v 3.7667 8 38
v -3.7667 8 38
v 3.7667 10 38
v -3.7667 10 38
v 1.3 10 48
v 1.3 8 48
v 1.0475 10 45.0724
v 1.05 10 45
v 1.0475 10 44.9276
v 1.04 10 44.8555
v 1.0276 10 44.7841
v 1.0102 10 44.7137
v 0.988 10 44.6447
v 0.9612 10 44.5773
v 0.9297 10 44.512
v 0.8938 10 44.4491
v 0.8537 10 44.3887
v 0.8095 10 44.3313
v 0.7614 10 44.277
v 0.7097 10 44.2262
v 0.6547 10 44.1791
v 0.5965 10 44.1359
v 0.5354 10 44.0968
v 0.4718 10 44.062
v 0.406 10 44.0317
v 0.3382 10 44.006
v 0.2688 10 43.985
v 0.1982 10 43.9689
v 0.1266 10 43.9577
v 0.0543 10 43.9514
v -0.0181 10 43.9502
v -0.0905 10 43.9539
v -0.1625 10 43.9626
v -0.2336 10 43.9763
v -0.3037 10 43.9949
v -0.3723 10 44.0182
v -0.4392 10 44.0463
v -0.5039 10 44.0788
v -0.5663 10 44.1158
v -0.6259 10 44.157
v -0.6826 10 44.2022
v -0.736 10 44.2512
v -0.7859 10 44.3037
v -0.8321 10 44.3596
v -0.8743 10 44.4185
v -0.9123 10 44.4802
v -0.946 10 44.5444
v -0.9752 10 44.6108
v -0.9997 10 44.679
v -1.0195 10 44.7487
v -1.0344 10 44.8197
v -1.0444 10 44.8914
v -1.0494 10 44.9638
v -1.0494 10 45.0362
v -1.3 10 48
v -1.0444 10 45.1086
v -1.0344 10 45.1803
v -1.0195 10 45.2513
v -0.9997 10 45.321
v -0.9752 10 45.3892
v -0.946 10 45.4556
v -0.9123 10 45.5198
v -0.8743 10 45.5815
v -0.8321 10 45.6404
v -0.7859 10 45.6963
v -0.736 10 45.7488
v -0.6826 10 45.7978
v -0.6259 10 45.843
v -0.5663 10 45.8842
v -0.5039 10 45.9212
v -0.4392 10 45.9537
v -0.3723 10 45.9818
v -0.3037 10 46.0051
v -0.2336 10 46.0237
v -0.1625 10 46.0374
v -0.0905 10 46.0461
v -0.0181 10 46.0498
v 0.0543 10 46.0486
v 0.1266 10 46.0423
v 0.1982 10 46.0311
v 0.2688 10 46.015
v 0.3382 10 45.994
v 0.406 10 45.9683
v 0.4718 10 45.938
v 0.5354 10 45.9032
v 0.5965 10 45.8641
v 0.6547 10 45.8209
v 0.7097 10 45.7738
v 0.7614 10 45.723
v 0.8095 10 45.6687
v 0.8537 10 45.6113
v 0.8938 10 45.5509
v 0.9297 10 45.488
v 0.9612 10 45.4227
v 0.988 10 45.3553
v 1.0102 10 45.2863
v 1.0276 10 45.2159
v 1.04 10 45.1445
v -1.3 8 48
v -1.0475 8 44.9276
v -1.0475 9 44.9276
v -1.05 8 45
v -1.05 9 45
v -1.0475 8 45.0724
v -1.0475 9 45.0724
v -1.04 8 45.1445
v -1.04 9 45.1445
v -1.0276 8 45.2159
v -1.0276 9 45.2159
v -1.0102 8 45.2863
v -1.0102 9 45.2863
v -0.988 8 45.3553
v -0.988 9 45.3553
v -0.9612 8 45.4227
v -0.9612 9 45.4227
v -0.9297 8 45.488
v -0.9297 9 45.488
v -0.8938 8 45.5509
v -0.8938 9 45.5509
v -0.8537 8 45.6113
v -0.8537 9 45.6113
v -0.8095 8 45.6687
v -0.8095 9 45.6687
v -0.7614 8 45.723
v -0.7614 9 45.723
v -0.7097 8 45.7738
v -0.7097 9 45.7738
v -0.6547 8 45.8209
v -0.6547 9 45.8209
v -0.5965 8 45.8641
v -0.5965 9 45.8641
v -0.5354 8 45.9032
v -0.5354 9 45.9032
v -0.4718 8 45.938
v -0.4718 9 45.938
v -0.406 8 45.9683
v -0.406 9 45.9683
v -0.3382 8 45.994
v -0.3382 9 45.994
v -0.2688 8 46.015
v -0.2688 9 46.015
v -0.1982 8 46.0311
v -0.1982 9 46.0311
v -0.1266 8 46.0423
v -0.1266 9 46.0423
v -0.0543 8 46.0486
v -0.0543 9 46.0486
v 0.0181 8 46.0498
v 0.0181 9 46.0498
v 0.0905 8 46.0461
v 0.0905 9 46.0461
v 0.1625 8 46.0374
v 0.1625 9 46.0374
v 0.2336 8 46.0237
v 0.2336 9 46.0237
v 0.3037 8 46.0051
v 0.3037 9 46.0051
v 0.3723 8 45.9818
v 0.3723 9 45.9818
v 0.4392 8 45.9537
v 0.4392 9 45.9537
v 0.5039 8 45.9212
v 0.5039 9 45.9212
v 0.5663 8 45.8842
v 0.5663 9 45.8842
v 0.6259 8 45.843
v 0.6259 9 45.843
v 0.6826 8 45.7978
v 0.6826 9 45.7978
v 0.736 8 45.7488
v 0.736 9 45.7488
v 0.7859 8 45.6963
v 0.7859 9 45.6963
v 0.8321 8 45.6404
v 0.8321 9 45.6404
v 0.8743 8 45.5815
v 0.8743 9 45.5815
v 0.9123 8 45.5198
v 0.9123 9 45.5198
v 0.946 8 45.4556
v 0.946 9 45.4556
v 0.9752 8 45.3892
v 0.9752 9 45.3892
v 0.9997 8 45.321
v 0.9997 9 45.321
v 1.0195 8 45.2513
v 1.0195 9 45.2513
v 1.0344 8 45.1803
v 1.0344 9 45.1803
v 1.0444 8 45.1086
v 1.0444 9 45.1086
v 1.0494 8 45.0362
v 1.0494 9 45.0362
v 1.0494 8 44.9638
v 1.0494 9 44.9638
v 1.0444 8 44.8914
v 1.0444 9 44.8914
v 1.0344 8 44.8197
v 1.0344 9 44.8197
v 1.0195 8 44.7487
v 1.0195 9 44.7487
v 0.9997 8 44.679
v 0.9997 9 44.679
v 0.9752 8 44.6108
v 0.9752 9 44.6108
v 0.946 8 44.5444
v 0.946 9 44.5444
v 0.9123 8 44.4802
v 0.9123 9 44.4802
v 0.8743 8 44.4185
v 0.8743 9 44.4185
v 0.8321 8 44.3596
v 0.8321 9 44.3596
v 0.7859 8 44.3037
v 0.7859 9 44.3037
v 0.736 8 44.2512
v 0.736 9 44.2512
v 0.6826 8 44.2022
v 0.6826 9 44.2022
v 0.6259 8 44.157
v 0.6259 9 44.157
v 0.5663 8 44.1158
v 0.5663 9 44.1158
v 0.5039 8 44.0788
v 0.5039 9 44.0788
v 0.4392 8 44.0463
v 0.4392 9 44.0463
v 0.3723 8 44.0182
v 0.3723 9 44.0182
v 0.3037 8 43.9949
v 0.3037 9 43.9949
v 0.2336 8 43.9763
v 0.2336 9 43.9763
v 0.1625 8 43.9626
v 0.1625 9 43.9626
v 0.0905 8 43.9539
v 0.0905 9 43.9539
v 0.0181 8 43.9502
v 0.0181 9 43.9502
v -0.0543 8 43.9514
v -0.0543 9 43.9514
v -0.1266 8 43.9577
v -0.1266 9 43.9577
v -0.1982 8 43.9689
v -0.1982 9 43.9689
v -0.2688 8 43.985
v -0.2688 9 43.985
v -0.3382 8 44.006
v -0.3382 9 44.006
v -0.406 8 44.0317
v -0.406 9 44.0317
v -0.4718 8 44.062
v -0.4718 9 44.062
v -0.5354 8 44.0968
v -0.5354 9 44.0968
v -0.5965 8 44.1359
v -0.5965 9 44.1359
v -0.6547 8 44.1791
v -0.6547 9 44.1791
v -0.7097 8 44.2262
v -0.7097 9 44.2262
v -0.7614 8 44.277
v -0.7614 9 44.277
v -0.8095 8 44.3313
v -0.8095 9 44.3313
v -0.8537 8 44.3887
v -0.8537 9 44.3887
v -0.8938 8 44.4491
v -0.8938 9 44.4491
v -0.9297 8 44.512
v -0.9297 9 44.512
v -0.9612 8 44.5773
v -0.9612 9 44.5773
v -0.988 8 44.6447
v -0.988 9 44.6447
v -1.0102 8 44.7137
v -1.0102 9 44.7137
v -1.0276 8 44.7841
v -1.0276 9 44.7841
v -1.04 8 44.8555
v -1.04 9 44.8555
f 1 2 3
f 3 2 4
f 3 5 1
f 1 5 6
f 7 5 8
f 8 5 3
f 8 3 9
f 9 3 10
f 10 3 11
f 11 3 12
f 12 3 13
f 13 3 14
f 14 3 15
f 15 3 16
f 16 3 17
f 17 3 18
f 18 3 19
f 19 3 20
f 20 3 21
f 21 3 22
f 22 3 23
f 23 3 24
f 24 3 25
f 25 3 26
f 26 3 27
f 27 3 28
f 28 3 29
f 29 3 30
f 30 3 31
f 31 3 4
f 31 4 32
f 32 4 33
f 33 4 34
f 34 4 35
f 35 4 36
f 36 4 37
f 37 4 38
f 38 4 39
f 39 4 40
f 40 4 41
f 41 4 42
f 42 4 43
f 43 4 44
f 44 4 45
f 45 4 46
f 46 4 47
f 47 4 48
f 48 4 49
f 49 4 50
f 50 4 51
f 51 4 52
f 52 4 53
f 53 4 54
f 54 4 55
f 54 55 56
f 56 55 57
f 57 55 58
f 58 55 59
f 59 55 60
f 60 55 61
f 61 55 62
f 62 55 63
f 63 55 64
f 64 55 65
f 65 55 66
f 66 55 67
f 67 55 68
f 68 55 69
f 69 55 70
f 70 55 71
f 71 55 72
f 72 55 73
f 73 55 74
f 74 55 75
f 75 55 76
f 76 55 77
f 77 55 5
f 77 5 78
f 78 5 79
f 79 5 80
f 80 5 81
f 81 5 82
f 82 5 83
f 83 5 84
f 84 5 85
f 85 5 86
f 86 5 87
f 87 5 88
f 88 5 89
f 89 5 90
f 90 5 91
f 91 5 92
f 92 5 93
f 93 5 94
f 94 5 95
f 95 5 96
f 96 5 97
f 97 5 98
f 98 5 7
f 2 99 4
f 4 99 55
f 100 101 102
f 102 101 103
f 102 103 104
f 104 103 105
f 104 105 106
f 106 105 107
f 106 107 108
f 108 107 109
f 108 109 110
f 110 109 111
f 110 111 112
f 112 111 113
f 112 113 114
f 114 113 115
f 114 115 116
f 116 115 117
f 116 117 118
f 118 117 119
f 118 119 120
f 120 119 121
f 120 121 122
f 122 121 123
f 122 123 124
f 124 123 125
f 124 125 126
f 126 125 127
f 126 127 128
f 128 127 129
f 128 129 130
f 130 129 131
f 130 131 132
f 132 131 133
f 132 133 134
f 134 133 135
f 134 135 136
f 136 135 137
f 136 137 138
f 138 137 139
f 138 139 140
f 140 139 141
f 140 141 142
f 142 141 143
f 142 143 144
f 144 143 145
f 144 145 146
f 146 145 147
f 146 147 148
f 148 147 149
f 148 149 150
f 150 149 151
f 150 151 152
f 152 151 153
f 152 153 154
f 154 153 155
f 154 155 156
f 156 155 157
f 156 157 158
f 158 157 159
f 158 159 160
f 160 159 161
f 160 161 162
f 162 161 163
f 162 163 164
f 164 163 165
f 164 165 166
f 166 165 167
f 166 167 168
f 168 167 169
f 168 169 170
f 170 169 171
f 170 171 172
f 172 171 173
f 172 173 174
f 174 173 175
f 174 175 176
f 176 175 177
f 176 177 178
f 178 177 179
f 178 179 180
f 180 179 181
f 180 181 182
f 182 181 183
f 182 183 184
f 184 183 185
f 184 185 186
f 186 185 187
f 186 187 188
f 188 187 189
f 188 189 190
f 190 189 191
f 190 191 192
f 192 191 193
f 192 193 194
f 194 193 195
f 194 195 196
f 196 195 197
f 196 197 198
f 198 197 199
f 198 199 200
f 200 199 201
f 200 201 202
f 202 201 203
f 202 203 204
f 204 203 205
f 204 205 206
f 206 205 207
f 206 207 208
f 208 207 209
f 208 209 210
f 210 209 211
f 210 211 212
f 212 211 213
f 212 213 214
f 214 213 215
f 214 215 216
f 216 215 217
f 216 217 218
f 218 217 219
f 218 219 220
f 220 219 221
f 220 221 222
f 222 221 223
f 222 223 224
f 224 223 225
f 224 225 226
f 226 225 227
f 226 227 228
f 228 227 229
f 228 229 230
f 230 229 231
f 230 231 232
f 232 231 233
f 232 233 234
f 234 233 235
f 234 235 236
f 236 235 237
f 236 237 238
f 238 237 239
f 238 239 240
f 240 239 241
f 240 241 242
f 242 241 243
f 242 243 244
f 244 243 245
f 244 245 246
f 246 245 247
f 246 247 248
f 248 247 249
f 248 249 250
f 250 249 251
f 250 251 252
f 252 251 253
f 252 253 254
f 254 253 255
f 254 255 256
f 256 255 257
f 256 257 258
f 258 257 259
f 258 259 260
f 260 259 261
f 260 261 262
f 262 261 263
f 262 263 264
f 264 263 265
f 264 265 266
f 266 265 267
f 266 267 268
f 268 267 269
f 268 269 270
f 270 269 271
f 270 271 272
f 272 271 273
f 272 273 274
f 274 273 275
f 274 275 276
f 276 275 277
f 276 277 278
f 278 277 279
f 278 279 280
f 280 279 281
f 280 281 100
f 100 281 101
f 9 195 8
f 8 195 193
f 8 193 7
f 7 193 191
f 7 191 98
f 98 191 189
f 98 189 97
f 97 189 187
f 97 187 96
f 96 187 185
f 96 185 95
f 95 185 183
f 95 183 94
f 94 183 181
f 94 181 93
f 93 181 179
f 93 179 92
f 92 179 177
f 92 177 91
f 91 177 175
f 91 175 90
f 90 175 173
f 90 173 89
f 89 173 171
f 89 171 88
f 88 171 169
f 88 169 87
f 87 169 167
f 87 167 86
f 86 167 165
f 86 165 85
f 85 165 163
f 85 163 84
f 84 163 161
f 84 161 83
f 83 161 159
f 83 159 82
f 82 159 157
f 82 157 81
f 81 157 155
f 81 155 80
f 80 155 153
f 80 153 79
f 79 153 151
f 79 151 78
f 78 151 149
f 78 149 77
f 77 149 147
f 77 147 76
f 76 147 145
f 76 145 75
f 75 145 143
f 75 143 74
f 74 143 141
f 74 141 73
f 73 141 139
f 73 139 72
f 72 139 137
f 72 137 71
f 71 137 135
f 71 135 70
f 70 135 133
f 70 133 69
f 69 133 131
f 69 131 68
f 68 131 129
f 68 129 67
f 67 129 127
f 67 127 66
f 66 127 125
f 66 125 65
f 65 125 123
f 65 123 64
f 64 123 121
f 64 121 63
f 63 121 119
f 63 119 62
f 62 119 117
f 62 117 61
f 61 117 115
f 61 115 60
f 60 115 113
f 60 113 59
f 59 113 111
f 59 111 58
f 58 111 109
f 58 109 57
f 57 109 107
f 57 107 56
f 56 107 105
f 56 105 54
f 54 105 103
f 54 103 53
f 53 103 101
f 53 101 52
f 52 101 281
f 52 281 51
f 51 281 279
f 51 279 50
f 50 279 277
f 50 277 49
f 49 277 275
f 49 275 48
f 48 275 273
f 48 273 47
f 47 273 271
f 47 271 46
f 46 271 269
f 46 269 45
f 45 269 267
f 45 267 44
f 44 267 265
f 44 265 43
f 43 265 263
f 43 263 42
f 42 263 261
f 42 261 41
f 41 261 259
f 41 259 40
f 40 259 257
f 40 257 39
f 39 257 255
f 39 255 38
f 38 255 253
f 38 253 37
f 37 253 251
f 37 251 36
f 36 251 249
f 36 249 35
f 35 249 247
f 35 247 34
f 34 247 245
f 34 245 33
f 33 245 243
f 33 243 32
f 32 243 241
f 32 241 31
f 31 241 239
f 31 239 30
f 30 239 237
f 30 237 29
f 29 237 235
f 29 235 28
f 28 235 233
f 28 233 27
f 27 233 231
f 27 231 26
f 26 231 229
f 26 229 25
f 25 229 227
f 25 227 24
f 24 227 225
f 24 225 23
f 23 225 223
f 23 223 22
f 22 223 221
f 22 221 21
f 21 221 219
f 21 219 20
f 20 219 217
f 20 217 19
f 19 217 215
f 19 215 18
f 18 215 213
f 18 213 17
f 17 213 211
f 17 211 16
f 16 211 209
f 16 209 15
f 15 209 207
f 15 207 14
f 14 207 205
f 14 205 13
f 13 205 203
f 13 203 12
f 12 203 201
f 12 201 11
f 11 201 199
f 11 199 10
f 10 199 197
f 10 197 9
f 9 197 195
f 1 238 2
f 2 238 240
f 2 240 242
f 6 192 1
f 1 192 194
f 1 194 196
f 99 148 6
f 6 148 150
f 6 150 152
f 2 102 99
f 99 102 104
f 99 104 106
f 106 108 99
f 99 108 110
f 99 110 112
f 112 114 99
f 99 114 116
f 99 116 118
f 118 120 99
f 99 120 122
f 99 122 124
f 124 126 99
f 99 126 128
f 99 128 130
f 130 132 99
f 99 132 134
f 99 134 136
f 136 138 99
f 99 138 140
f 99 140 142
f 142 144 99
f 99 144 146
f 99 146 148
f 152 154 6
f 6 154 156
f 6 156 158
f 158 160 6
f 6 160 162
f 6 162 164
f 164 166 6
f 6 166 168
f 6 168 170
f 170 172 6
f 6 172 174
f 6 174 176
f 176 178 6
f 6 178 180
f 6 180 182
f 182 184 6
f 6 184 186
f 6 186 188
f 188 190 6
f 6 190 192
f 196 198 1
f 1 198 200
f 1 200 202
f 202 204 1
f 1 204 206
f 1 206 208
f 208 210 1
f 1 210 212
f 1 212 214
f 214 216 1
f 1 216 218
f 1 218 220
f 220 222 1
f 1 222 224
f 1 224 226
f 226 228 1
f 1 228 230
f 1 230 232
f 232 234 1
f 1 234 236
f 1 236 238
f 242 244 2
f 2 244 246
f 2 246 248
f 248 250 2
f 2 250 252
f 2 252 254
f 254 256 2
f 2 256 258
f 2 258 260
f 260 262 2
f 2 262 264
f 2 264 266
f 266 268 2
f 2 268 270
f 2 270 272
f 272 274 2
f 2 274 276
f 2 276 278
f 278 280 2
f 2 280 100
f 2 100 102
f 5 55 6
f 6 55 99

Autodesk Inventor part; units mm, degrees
ref_plane "YZ Plane" through (0, 0, 0) normal (1, 0, 0) x (0, 1, 0)
ref_plane "XZ Plane" through (0, 0, 0) normal (0, 1, 0) x (-1, 0, 0)
ref_plane "XY Plane" through (0, 0, 0) normal (0, 0, 1) x (1, 0, 0)
sketch "Sketch1" plane through (0, 0, 0) normal (0, 1, 0) x (-1, 0, 0)
  circle A0 centre (0, 0) radius 1.05
  line L0 (5, 20) -> (-5, 20)
  line L1 (-5, 20) -> (-5, -5)
  line L2 (-5, -5) -> (5, -5)
  line L3 (5, -5) -> (5, 20)
  circle A1 centre (0, 15) radius 1.05
  dimension "d0" = 2.1
  dimension "d1" = 5
  dimension "d2" = 10
  dimension "d4" = 5
  dimension "d16" = 2.1
  dimension "d17" = 15
  dimension "d18" = 5
extrude "Extrusion1" add sketch "Sketch1" along normal blind 10
sketch "Sketch2" plane through (5, 0, 20) normal (1, 0, 0) x (0, 0, -1)
  line L0 (0, 10) -> (25, 10) projected
  line L1 (15, 10) -> (17.5478, 3)
  line L2 (17.5478, 3) -> (25, 3)
  line L3 (18.95, 10) -> (18.95, 0) projected
  line L4 (25, 3) -> (25, 10)
  line L5 (25, 10) -> (15, 10)
  line L6 (25, 0) -> (25, 10) projected
  line L7 (0, 0) -> (25, 0) projected
  point P0 (20, 0)
  dimension "d8" = 3
  dimension "d9" = 110
  dimension "d10" = 10
extrude "Extrusion2" cut sketch "Sketch2" against normal blind 10 contours L0 L3 L2 L1 | L0 L4 L2 L3
sketch "Sketch3" plane through (0, 10, 0) normal (0, 1, 0) x (1, 0, 0)
  circle A0 centre (0, 0) radius 2
  dimension "d13" = 4
extrude "Extrusion3" cut sketch "Sketch3" against normal up to surface (7 mm away)
sketch "Sketch4" plane through (0, 10, 0) normal (0, 1, 0) x (1, 0, 0)
  circle A0 centre (0, -15) radius 1.05 projected
  circle A1 centre (0, -15) radius 2.25
  point P0 (0, 0)
  dimension "d19" = 4.5
extrude "Extrusion4" cut sketch "Sketch4" against normal up to surface (7 mm away)
chamfer "Chamfer1" distance 1 angle 45 1 edges at (1.05, 3, 0)
sketch "Sketch5" plane through (5, 0, -5) normal (0, 0, -1) x (-1, 0, 0)
  line L0 (5, 0) -> (5, 5.666) construction
  circle A0 centre (5, 5.666) radius 2.1
  line L1 (10, 3) -> (0, 3) projected
  dimension "d25" = 4.2
  dimension "d26" = 2.666
extrude "Extrusion5" cut sketch "Sketch5" against normal blind 31.5
sketch "Sketch6" plane through (0, 10, 0) normal (0, 1, 0) x (1, 0, 0)
  line L0 (5, -5) -> (-5, -5) projected
  line L1 (0, -5) -> (0, -20) construction
  line L2 (-5, -20) -> (5, -20) projected
  line L3 (3.45, -10.575) -> (-3.45, -10.575)
  line L4 (-3.45, -10.575) -> (-3.45, -7.425)
  line L5 (-3.45, -7.425) -> (3.45, -7.425)
  line L6 (3.45, -7.425) -> (3.45, -10.575)
  line L7 (3.45, -10.575) -> (-3.45, -7.425) construction
  line L8 (-3.45, -10.575) -> (3.45, -7.425) construction
  point P0 (0, 0)
  point P1 (0, -9)
  dimension "d29" = 6.9
  dimension "d30" = 3.15
  dimension "d31" = 4
extrude "Extrusion6" cut sketch "Sketch6" against normal blind 5
sketch "Sketch7" plane through (-3.45, 10, 7.425) normal (0, 0, 1) x (1, 0, 0)
  arc A0 (5.4416, -5) -> (1.4584, -5) centre (3.45, -4.334) ccw projected
  line L0 (3.45, -8.3177) -> (0, -6.3259)
  line L1 (0, -6.3259) -> (0, -2.3421)
  line L2 (0, -2.3421) -> (3.45, -0.3503)
  line L3 (3.45, -0.3503) -> (6.9, -2.3421)
  line L4 (6.9, -2.3421) -> (6.9, -6.3259)
  line L5 (6.9, -6.3259) -> (3.45, -8.3177)
  point P0 (3.45, -10)
  dimension "d34" = 6.9
extrude "Extrusion7" cut sketch "Sketch7" along normal blind 3.15
sketch "Sketch8" plane through (-5, 0, 20) normal (0, 0, 1) x (1, 0, 0)
  line L0 (0, 10) -> (10, 10)
  line L1 (10, 10) -> (10, 8)
  line L2 (10, 8) -> (0, 8)
  line L3 (0, 8) -> (0, 10)
  line L4 (0, 10) -> (10, 10) projected
  line L5 (10, 0) -> (10, 10) projected
  line L6 (0, 0) -> (0, 10) projected
  point P0 (5, 0)
  dimension "d37" = 2
extrude "Extrusion8" add sketch "Sketch8" along normal blind 28
chamfer "Chamfer2" distance 4 angle 45 1 edges at (0, 8, 20)
sketch "Sketch9" plane through (0, 10, 0) normal (0, 1, 0) x (1, 0, 0)
  circle A0 centre (0, -45) radius 1.05
  line L0 (5, -48) -> (-5, -48) projected
  point P0 (0, 0)
  dimension "d46" = 2.1
  dimension "d50" = 3
extrude "Extrusion9" cut sketch "Sketch9" against normal blind 15
sketch "Sketch10" plane through (0, 10, 0) normal (0, 1, 0) x (1, 0, 0)
  line L0 (5, -48) -> (-5, -48) projected
  line L1 (-1.3, -48) -> (-5, -33)
  line L2 (-5, -5) -> (-5, -48) projected
  line L3 (-5, -33) -> (-5, -48)
  line L4 (-5, -48) -> (-1.3, -48)
  line L5 (0, -35) -> (0, 5) construction
  line L6 (1.3, -48) -> (5, -33)
  line L7 (5, -33) -> (5, -48)
  line L8 (5, -48) -> (1.3, -48)
  point P0 (0, 0)
  dimension "d51" = 1.3
  dimension "d52" = 15
extrude "Extrusion10" cut sketch "Sketch10" against normal blind 15
sketch "Sketch11" plane through (0, 10, 0) normal (0, 1, 0) x (1, 0, 0)
  line L0 (-5, 5) -> (-5, -20) projected
  line L1 (-5, 5) -> (5, 5)
  line L2 (5, 5) -> (5, -38)
  line L3 (5, -38) -> (-5, -38)
  line L4 (-5, -38) -> (-5, 5)
  line L5 (1.3, -48) -> (-1.3, -48) projected
  line L6 (5, -5) -> (5, -33) projected
  point P0 (0, 0)
  dimension "d55" = 10
extrude "Extrusion11" cut sketch "Sketch11" against normal blind 10
properties part number "Clamp"
